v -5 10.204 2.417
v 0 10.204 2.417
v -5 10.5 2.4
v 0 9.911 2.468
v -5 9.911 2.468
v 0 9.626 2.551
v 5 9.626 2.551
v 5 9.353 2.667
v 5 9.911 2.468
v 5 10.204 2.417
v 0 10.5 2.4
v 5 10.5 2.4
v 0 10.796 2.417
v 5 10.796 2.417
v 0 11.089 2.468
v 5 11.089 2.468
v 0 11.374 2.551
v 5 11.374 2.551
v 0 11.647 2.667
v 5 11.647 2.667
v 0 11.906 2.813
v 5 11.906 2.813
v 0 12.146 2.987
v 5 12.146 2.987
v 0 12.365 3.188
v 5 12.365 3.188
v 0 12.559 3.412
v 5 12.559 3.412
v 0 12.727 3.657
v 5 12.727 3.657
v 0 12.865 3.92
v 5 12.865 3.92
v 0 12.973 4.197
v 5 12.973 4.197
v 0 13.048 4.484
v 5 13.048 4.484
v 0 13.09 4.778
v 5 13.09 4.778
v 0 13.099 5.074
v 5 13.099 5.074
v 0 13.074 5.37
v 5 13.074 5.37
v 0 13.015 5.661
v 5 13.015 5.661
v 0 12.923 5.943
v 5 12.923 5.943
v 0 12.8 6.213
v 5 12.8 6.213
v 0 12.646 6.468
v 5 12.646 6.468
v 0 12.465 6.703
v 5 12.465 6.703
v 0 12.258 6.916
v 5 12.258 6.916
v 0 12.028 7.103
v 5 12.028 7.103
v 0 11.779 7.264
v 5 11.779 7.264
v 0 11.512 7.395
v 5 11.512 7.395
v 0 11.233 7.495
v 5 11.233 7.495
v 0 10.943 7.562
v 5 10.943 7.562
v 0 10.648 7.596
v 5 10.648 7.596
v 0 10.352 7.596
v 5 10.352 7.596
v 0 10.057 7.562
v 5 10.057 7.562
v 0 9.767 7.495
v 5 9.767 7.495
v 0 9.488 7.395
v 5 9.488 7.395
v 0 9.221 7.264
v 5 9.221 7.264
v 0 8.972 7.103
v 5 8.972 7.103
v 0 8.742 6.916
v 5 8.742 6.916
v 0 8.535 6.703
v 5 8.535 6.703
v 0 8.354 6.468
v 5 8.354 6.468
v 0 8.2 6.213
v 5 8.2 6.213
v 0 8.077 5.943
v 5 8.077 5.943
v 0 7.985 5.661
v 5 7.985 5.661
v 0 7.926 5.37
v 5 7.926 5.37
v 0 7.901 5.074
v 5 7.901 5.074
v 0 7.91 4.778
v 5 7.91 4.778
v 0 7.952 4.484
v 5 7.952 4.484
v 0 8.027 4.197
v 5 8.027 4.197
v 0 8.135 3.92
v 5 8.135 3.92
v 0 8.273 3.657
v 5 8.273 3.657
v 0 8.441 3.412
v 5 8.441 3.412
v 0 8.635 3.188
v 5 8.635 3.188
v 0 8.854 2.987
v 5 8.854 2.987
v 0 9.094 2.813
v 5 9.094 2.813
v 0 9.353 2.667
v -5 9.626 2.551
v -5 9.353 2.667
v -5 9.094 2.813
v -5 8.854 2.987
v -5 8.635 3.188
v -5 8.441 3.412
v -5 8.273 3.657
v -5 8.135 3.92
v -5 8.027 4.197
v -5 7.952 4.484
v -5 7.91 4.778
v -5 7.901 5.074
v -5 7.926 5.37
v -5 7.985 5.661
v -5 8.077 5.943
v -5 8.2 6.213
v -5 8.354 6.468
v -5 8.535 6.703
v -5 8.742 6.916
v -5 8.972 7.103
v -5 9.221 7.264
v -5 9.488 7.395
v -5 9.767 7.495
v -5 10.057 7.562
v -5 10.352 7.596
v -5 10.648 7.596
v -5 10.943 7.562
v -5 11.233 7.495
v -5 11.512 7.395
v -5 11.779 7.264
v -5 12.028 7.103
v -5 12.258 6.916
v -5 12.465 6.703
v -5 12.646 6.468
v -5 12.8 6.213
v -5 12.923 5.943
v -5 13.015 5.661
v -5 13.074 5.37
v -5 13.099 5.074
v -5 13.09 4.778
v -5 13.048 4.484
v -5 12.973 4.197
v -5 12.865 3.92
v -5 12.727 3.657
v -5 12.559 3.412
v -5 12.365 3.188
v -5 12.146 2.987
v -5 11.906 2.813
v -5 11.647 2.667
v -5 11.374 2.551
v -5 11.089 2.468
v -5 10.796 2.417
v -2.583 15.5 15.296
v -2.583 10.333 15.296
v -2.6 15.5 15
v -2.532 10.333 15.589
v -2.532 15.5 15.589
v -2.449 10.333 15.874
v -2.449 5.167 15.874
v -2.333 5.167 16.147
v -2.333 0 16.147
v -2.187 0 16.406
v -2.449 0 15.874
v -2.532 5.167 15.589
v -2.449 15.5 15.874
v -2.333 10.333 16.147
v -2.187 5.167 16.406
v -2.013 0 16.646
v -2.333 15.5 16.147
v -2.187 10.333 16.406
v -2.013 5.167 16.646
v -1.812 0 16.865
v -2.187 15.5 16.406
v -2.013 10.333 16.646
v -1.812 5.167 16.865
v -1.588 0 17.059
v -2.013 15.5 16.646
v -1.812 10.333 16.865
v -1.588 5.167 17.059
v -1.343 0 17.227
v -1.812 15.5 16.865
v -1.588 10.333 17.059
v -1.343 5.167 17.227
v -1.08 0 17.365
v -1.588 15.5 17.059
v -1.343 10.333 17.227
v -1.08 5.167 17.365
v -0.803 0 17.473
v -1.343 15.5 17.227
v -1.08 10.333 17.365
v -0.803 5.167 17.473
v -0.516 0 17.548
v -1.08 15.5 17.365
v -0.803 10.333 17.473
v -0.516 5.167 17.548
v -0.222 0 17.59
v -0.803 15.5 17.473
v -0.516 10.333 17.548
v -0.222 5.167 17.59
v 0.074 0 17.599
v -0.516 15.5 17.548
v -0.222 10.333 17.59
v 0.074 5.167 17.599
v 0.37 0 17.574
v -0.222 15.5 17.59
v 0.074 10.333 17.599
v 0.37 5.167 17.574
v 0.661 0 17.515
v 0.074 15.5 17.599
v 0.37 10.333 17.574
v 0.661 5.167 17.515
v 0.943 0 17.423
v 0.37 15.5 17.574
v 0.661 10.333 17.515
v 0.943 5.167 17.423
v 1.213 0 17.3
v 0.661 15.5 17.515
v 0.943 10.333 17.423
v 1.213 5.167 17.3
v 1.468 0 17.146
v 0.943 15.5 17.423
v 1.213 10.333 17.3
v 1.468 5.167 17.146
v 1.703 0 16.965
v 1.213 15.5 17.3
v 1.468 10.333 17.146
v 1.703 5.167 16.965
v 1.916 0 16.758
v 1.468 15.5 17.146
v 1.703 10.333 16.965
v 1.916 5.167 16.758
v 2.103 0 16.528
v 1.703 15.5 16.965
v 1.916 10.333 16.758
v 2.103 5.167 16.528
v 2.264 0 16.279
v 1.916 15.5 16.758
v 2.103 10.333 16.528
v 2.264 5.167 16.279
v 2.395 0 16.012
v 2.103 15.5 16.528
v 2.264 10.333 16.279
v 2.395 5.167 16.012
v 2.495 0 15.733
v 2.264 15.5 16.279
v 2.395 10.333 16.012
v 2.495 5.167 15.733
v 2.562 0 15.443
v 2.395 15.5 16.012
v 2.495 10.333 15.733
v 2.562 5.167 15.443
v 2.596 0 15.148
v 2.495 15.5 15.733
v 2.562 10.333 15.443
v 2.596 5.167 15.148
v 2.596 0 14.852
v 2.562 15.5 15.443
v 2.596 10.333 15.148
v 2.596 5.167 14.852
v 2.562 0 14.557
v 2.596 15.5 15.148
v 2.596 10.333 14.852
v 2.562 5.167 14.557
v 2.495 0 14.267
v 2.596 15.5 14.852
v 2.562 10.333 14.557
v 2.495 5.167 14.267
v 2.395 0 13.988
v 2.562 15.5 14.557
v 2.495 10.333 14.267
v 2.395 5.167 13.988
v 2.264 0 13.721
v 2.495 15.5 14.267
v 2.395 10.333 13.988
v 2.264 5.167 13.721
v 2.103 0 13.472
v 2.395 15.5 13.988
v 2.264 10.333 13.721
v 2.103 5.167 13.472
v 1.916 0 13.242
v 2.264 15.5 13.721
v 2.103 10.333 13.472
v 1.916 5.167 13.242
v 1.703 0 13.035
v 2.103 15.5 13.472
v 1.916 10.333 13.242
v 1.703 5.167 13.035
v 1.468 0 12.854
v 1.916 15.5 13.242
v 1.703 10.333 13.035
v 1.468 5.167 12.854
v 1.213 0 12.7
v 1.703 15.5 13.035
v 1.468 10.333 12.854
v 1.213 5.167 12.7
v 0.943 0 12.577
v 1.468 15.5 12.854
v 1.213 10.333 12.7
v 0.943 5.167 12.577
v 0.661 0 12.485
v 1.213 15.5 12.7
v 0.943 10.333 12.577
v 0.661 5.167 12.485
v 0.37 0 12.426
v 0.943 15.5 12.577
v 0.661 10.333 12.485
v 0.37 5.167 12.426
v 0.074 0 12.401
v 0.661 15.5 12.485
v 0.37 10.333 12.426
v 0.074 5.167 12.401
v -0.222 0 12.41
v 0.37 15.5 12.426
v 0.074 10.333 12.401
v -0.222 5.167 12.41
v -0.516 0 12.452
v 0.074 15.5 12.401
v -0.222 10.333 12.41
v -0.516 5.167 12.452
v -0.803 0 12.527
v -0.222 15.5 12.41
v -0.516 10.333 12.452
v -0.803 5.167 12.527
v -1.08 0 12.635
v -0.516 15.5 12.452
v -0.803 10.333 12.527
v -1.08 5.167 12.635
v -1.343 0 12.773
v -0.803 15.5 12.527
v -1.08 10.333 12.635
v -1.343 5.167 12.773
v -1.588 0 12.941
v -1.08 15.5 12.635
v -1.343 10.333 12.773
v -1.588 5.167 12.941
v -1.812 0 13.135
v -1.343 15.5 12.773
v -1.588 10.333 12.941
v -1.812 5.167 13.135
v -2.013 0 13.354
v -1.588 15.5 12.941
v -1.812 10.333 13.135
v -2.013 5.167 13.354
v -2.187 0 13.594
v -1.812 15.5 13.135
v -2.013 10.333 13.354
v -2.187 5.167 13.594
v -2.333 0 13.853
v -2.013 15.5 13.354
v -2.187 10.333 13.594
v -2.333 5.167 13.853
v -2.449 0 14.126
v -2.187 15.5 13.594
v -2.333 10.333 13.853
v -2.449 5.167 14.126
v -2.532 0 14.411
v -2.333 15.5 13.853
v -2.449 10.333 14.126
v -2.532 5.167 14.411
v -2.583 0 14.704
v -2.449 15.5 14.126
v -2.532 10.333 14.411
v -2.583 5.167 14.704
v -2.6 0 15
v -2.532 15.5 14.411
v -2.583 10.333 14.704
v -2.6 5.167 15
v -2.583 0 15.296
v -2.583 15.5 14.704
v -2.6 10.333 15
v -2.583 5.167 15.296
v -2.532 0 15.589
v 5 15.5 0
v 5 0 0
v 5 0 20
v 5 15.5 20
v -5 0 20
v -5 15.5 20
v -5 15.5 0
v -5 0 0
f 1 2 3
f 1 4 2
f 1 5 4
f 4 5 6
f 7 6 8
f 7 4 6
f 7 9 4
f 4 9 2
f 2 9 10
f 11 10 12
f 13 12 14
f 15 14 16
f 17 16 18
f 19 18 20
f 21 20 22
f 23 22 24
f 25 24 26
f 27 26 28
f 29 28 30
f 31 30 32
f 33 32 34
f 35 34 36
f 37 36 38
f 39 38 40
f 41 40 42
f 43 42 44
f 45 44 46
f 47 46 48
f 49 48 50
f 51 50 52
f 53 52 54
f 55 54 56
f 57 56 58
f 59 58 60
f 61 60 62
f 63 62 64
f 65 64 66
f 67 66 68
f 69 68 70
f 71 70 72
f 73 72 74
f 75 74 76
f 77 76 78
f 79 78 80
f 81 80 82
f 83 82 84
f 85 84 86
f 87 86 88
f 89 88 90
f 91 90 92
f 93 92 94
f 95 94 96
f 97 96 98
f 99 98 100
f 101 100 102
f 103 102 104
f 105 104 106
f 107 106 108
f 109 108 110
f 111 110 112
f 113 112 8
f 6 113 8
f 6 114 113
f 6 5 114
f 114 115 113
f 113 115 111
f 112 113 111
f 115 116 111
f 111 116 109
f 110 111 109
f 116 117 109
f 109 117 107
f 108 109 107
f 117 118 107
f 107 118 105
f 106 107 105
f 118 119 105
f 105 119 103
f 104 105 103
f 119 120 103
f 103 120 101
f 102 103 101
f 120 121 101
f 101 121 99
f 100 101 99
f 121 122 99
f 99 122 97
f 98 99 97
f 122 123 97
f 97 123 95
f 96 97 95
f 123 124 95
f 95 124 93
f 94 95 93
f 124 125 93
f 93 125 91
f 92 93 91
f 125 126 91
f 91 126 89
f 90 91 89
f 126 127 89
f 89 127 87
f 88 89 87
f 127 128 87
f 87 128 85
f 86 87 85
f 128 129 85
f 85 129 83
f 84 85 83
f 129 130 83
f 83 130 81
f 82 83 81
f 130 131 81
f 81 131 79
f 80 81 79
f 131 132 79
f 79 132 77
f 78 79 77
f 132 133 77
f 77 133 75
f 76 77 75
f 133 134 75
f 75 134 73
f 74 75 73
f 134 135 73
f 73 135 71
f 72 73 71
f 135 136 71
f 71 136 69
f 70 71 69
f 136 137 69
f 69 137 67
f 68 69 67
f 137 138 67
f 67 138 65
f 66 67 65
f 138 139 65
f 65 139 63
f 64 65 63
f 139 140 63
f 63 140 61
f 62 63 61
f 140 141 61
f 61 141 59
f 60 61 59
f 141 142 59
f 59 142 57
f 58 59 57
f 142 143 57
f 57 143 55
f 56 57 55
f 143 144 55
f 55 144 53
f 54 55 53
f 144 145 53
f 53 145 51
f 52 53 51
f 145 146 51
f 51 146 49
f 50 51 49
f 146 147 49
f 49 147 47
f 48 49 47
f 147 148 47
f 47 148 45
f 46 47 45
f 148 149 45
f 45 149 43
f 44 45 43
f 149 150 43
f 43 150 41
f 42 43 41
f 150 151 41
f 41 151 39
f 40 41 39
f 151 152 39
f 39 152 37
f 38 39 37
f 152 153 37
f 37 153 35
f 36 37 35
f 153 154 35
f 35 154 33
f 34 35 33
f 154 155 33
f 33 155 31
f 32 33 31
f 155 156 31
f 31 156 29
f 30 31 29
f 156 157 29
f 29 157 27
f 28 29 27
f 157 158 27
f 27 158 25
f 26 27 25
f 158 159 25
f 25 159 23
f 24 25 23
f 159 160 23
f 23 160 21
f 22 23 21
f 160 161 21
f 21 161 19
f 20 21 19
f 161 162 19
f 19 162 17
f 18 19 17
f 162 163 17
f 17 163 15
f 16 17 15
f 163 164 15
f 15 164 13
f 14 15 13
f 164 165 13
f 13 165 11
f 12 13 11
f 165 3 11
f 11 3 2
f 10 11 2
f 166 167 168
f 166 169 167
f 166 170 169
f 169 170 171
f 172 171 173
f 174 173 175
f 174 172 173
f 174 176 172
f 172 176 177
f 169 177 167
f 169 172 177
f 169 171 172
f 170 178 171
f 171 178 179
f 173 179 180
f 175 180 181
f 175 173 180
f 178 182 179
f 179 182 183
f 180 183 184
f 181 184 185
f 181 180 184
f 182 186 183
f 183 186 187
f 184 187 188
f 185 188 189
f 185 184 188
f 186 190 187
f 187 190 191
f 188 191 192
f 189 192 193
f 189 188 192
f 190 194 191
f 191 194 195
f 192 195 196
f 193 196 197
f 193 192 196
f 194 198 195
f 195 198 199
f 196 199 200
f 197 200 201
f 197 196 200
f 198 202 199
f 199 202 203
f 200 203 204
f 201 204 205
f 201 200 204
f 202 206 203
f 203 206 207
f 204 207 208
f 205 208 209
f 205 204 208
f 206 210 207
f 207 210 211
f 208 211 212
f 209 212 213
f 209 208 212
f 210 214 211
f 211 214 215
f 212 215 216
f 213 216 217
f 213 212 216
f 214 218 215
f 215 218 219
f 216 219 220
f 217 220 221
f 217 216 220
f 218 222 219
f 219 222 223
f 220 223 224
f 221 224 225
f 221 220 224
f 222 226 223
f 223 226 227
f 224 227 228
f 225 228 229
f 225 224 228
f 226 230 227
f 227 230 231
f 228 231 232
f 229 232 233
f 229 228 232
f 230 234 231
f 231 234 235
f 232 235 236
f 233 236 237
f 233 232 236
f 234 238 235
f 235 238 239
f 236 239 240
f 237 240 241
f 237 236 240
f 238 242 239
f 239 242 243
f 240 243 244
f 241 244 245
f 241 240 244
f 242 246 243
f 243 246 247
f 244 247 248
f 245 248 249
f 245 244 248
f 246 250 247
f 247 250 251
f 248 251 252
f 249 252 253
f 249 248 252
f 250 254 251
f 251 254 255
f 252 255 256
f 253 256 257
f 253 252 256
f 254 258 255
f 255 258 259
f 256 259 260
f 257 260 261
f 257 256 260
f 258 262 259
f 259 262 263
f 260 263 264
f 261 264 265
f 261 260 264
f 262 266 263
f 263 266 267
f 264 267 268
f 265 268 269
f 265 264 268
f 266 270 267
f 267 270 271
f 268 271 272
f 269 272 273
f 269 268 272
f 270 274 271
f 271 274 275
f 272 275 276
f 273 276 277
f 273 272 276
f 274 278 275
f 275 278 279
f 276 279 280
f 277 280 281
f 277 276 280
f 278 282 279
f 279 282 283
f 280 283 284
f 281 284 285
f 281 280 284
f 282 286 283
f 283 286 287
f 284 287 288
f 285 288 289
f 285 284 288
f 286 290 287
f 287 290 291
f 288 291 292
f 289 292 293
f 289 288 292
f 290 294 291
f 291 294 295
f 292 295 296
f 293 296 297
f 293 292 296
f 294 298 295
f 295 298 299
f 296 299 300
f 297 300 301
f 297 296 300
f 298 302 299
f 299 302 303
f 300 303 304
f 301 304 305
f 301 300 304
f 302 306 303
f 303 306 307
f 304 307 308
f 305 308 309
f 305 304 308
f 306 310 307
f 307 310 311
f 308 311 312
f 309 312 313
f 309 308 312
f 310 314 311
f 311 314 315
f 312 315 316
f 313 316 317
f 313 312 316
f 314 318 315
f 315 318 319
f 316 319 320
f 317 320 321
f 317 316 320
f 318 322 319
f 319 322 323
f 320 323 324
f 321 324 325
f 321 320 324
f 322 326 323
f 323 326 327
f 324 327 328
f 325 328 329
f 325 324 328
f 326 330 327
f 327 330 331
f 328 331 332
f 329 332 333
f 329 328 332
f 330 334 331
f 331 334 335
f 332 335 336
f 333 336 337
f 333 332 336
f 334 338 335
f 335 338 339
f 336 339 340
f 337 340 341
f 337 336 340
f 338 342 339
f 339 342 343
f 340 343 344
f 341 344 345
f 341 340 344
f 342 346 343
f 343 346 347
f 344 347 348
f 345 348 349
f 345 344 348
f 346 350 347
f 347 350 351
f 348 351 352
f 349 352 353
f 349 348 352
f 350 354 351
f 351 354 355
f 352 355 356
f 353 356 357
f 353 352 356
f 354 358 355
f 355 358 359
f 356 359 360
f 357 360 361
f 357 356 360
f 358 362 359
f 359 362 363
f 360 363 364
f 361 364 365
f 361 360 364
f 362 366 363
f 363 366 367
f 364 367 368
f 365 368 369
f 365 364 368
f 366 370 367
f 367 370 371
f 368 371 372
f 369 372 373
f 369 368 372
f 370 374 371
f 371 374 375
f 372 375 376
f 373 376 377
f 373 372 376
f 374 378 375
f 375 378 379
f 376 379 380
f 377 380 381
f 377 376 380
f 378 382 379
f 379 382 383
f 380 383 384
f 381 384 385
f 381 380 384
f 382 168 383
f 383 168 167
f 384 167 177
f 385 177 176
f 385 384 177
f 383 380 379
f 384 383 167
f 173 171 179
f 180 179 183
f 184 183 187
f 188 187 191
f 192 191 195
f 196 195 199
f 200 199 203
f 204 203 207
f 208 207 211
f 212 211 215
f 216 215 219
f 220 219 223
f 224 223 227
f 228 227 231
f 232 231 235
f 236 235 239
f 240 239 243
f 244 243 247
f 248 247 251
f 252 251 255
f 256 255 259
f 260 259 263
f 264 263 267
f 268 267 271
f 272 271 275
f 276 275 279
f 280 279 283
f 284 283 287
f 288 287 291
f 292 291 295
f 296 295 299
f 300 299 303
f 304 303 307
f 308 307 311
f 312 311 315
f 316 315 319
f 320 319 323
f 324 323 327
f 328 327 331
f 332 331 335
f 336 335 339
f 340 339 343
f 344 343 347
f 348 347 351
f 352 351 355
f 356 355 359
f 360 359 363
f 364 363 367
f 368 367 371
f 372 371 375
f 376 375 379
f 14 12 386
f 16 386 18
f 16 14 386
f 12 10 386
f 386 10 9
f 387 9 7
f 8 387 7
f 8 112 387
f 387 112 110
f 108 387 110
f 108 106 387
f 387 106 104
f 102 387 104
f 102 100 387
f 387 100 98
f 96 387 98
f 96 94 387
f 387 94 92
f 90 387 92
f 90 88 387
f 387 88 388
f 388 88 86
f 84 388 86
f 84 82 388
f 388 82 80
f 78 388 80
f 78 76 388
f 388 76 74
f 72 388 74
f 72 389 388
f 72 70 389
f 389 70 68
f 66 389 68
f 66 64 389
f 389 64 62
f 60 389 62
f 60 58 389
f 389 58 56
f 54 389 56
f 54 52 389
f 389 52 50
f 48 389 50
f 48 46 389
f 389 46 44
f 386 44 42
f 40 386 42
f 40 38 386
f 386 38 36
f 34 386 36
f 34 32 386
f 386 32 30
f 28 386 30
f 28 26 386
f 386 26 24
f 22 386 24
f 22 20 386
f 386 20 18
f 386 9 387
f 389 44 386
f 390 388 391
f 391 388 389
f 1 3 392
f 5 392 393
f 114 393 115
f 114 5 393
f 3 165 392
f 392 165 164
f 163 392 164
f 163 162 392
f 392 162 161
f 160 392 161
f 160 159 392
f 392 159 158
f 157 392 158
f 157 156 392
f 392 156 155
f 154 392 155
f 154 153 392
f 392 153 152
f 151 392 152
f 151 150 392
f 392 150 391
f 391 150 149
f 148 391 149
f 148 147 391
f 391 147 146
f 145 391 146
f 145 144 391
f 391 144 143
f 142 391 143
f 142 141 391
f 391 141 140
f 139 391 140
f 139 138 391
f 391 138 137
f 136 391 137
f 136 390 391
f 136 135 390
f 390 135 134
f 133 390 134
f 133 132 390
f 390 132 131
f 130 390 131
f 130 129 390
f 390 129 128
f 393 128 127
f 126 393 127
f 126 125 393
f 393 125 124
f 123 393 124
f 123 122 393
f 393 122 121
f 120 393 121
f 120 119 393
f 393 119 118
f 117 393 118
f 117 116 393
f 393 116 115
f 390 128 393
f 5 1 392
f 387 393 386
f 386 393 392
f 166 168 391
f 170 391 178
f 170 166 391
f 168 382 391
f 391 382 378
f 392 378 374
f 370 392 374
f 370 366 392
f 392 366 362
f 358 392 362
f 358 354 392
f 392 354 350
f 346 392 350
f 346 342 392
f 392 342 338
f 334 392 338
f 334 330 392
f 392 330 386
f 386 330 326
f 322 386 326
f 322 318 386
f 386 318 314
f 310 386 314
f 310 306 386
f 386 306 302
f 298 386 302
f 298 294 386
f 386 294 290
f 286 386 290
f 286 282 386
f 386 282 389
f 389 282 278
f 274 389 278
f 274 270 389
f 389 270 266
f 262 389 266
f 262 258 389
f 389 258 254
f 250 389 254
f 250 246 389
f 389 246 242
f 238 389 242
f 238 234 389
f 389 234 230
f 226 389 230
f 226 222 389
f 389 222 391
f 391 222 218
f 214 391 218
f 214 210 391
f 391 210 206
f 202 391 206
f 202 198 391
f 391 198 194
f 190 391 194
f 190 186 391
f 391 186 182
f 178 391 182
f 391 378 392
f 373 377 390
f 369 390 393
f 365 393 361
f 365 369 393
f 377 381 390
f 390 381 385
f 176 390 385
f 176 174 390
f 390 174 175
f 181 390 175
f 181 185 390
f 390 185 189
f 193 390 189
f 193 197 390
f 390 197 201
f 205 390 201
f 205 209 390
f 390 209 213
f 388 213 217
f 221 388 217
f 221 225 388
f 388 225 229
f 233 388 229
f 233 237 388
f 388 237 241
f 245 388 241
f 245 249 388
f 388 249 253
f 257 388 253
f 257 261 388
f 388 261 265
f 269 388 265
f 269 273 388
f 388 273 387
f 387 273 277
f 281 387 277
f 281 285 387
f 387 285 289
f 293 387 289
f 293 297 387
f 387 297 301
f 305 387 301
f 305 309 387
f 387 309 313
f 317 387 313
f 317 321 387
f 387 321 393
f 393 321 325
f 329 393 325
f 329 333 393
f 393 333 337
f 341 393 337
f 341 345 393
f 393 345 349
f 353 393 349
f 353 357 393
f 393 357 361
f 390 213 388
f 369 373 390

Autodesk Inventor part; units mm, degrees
ref_plane "YZ Plane" through (0, 0, 0) normal (1, 0, 0) x (0, 1, 0)
ref_plane "XZ Plane" through (0, 0, 0) normal (0, 1, 0) x (-1, 0, 0)
ref_plane "XY Plane" through (0, 0, 0) normal (0, 0, 1) x (1, 0, 0)
sketch "Sketch1" plane through (0, 0, 0) normal (0, 1, 0) x (-1, 0, 0)
  line L0 (0, 0) -> (0, -5.5)
  line L1 (0, -5.5) -> (0, -15.5)
  circle A0 centre (0, -15.5) radius 2.6
  line L2 (0, -100) -> (0, -84.8)
  circle A1 centre (0, -84.8) radius 2.6
  line L3 (0, -50) -> (0, -26)
  line L4 (0, -26) -> (-5, -26)
  line L5 (0, -12.9) -> (0, -10.5)
  line L6 (0, -10.5) -> (-5, -10.5)
  line L7 (-5, -10.5) -> (-5, -26)
  line L8 (0, -10.5) -> (5, -10.5)
  line L9 (5, -10.5) -> (5, -26)
  line L10 (5, -26) -> (0, -26)
  line L11 (0, 0) -> (0, -12.9)
  line L12 (0, -18.1) -> (0, -100)
  line L13 (0, 0) -> (5, 0)
  line L14 (0, 0) -> (-5, 0)
  line L15 (0, 0) -> (0, 5)
  line L16 (0, 5) -> (0, 12.4)
  line L17 (0, 15) -> (0, 20)
  line L18 (0, 20) -> (-5, 20)
  line L19 (-5, 20) -> (-5, 0)
  line L20 (5, 0) -> (5, 20)
  line L21 (5, 20) -> (0, 20)
  circle A2 centre (0, 15) radius 2.6
  dimension "d15" = 5.2
  dimension "d0" = 100
  dimension "d1" = 5.5
  dimension "d2" = 10
  dimension "d3" = 5.2
  dimension "d4" = 15.2
  dimension "d5" = 5.2
  dimension "d6" = 24
  dimension "d7" = 5
  dimension "d8" = 5
  dimension "d9" = 5
  dimension "d10" = 5
  dimension "d11" = 5
  dimension "d12" = 5
  dimension "d13" = 10
  dimension "d14" = 5
extrude "Extrusion1" add sketch "Sketch1" along normal blind 15.5 contours L15 L16 A2 L17 L21 L20 L13 | L14 L19 L18 L17 A2 L16 L15
sketch "Sketch2" plane through (5, 0, 20) normal (1, 0, 0) x (0, 0, -1)
  line L0 (20, 15.5) -> (15, 15.5)
  line L1 (20, 15.5) -> (0, 15.5) projected
  line L2 (15, 15.5) -> (15, 10.5)
  circle A0 centre (15, 10.5) radius 2.6
  point P0 (20, 0)
  dimension "d18" = 5
  dimension "d19" = 5
  dimension "d20" = 5.2
extrude "Extrusion2" cut sketch "Sketch2" against normal blind 15.5
properties part number "roller_joint_front"
